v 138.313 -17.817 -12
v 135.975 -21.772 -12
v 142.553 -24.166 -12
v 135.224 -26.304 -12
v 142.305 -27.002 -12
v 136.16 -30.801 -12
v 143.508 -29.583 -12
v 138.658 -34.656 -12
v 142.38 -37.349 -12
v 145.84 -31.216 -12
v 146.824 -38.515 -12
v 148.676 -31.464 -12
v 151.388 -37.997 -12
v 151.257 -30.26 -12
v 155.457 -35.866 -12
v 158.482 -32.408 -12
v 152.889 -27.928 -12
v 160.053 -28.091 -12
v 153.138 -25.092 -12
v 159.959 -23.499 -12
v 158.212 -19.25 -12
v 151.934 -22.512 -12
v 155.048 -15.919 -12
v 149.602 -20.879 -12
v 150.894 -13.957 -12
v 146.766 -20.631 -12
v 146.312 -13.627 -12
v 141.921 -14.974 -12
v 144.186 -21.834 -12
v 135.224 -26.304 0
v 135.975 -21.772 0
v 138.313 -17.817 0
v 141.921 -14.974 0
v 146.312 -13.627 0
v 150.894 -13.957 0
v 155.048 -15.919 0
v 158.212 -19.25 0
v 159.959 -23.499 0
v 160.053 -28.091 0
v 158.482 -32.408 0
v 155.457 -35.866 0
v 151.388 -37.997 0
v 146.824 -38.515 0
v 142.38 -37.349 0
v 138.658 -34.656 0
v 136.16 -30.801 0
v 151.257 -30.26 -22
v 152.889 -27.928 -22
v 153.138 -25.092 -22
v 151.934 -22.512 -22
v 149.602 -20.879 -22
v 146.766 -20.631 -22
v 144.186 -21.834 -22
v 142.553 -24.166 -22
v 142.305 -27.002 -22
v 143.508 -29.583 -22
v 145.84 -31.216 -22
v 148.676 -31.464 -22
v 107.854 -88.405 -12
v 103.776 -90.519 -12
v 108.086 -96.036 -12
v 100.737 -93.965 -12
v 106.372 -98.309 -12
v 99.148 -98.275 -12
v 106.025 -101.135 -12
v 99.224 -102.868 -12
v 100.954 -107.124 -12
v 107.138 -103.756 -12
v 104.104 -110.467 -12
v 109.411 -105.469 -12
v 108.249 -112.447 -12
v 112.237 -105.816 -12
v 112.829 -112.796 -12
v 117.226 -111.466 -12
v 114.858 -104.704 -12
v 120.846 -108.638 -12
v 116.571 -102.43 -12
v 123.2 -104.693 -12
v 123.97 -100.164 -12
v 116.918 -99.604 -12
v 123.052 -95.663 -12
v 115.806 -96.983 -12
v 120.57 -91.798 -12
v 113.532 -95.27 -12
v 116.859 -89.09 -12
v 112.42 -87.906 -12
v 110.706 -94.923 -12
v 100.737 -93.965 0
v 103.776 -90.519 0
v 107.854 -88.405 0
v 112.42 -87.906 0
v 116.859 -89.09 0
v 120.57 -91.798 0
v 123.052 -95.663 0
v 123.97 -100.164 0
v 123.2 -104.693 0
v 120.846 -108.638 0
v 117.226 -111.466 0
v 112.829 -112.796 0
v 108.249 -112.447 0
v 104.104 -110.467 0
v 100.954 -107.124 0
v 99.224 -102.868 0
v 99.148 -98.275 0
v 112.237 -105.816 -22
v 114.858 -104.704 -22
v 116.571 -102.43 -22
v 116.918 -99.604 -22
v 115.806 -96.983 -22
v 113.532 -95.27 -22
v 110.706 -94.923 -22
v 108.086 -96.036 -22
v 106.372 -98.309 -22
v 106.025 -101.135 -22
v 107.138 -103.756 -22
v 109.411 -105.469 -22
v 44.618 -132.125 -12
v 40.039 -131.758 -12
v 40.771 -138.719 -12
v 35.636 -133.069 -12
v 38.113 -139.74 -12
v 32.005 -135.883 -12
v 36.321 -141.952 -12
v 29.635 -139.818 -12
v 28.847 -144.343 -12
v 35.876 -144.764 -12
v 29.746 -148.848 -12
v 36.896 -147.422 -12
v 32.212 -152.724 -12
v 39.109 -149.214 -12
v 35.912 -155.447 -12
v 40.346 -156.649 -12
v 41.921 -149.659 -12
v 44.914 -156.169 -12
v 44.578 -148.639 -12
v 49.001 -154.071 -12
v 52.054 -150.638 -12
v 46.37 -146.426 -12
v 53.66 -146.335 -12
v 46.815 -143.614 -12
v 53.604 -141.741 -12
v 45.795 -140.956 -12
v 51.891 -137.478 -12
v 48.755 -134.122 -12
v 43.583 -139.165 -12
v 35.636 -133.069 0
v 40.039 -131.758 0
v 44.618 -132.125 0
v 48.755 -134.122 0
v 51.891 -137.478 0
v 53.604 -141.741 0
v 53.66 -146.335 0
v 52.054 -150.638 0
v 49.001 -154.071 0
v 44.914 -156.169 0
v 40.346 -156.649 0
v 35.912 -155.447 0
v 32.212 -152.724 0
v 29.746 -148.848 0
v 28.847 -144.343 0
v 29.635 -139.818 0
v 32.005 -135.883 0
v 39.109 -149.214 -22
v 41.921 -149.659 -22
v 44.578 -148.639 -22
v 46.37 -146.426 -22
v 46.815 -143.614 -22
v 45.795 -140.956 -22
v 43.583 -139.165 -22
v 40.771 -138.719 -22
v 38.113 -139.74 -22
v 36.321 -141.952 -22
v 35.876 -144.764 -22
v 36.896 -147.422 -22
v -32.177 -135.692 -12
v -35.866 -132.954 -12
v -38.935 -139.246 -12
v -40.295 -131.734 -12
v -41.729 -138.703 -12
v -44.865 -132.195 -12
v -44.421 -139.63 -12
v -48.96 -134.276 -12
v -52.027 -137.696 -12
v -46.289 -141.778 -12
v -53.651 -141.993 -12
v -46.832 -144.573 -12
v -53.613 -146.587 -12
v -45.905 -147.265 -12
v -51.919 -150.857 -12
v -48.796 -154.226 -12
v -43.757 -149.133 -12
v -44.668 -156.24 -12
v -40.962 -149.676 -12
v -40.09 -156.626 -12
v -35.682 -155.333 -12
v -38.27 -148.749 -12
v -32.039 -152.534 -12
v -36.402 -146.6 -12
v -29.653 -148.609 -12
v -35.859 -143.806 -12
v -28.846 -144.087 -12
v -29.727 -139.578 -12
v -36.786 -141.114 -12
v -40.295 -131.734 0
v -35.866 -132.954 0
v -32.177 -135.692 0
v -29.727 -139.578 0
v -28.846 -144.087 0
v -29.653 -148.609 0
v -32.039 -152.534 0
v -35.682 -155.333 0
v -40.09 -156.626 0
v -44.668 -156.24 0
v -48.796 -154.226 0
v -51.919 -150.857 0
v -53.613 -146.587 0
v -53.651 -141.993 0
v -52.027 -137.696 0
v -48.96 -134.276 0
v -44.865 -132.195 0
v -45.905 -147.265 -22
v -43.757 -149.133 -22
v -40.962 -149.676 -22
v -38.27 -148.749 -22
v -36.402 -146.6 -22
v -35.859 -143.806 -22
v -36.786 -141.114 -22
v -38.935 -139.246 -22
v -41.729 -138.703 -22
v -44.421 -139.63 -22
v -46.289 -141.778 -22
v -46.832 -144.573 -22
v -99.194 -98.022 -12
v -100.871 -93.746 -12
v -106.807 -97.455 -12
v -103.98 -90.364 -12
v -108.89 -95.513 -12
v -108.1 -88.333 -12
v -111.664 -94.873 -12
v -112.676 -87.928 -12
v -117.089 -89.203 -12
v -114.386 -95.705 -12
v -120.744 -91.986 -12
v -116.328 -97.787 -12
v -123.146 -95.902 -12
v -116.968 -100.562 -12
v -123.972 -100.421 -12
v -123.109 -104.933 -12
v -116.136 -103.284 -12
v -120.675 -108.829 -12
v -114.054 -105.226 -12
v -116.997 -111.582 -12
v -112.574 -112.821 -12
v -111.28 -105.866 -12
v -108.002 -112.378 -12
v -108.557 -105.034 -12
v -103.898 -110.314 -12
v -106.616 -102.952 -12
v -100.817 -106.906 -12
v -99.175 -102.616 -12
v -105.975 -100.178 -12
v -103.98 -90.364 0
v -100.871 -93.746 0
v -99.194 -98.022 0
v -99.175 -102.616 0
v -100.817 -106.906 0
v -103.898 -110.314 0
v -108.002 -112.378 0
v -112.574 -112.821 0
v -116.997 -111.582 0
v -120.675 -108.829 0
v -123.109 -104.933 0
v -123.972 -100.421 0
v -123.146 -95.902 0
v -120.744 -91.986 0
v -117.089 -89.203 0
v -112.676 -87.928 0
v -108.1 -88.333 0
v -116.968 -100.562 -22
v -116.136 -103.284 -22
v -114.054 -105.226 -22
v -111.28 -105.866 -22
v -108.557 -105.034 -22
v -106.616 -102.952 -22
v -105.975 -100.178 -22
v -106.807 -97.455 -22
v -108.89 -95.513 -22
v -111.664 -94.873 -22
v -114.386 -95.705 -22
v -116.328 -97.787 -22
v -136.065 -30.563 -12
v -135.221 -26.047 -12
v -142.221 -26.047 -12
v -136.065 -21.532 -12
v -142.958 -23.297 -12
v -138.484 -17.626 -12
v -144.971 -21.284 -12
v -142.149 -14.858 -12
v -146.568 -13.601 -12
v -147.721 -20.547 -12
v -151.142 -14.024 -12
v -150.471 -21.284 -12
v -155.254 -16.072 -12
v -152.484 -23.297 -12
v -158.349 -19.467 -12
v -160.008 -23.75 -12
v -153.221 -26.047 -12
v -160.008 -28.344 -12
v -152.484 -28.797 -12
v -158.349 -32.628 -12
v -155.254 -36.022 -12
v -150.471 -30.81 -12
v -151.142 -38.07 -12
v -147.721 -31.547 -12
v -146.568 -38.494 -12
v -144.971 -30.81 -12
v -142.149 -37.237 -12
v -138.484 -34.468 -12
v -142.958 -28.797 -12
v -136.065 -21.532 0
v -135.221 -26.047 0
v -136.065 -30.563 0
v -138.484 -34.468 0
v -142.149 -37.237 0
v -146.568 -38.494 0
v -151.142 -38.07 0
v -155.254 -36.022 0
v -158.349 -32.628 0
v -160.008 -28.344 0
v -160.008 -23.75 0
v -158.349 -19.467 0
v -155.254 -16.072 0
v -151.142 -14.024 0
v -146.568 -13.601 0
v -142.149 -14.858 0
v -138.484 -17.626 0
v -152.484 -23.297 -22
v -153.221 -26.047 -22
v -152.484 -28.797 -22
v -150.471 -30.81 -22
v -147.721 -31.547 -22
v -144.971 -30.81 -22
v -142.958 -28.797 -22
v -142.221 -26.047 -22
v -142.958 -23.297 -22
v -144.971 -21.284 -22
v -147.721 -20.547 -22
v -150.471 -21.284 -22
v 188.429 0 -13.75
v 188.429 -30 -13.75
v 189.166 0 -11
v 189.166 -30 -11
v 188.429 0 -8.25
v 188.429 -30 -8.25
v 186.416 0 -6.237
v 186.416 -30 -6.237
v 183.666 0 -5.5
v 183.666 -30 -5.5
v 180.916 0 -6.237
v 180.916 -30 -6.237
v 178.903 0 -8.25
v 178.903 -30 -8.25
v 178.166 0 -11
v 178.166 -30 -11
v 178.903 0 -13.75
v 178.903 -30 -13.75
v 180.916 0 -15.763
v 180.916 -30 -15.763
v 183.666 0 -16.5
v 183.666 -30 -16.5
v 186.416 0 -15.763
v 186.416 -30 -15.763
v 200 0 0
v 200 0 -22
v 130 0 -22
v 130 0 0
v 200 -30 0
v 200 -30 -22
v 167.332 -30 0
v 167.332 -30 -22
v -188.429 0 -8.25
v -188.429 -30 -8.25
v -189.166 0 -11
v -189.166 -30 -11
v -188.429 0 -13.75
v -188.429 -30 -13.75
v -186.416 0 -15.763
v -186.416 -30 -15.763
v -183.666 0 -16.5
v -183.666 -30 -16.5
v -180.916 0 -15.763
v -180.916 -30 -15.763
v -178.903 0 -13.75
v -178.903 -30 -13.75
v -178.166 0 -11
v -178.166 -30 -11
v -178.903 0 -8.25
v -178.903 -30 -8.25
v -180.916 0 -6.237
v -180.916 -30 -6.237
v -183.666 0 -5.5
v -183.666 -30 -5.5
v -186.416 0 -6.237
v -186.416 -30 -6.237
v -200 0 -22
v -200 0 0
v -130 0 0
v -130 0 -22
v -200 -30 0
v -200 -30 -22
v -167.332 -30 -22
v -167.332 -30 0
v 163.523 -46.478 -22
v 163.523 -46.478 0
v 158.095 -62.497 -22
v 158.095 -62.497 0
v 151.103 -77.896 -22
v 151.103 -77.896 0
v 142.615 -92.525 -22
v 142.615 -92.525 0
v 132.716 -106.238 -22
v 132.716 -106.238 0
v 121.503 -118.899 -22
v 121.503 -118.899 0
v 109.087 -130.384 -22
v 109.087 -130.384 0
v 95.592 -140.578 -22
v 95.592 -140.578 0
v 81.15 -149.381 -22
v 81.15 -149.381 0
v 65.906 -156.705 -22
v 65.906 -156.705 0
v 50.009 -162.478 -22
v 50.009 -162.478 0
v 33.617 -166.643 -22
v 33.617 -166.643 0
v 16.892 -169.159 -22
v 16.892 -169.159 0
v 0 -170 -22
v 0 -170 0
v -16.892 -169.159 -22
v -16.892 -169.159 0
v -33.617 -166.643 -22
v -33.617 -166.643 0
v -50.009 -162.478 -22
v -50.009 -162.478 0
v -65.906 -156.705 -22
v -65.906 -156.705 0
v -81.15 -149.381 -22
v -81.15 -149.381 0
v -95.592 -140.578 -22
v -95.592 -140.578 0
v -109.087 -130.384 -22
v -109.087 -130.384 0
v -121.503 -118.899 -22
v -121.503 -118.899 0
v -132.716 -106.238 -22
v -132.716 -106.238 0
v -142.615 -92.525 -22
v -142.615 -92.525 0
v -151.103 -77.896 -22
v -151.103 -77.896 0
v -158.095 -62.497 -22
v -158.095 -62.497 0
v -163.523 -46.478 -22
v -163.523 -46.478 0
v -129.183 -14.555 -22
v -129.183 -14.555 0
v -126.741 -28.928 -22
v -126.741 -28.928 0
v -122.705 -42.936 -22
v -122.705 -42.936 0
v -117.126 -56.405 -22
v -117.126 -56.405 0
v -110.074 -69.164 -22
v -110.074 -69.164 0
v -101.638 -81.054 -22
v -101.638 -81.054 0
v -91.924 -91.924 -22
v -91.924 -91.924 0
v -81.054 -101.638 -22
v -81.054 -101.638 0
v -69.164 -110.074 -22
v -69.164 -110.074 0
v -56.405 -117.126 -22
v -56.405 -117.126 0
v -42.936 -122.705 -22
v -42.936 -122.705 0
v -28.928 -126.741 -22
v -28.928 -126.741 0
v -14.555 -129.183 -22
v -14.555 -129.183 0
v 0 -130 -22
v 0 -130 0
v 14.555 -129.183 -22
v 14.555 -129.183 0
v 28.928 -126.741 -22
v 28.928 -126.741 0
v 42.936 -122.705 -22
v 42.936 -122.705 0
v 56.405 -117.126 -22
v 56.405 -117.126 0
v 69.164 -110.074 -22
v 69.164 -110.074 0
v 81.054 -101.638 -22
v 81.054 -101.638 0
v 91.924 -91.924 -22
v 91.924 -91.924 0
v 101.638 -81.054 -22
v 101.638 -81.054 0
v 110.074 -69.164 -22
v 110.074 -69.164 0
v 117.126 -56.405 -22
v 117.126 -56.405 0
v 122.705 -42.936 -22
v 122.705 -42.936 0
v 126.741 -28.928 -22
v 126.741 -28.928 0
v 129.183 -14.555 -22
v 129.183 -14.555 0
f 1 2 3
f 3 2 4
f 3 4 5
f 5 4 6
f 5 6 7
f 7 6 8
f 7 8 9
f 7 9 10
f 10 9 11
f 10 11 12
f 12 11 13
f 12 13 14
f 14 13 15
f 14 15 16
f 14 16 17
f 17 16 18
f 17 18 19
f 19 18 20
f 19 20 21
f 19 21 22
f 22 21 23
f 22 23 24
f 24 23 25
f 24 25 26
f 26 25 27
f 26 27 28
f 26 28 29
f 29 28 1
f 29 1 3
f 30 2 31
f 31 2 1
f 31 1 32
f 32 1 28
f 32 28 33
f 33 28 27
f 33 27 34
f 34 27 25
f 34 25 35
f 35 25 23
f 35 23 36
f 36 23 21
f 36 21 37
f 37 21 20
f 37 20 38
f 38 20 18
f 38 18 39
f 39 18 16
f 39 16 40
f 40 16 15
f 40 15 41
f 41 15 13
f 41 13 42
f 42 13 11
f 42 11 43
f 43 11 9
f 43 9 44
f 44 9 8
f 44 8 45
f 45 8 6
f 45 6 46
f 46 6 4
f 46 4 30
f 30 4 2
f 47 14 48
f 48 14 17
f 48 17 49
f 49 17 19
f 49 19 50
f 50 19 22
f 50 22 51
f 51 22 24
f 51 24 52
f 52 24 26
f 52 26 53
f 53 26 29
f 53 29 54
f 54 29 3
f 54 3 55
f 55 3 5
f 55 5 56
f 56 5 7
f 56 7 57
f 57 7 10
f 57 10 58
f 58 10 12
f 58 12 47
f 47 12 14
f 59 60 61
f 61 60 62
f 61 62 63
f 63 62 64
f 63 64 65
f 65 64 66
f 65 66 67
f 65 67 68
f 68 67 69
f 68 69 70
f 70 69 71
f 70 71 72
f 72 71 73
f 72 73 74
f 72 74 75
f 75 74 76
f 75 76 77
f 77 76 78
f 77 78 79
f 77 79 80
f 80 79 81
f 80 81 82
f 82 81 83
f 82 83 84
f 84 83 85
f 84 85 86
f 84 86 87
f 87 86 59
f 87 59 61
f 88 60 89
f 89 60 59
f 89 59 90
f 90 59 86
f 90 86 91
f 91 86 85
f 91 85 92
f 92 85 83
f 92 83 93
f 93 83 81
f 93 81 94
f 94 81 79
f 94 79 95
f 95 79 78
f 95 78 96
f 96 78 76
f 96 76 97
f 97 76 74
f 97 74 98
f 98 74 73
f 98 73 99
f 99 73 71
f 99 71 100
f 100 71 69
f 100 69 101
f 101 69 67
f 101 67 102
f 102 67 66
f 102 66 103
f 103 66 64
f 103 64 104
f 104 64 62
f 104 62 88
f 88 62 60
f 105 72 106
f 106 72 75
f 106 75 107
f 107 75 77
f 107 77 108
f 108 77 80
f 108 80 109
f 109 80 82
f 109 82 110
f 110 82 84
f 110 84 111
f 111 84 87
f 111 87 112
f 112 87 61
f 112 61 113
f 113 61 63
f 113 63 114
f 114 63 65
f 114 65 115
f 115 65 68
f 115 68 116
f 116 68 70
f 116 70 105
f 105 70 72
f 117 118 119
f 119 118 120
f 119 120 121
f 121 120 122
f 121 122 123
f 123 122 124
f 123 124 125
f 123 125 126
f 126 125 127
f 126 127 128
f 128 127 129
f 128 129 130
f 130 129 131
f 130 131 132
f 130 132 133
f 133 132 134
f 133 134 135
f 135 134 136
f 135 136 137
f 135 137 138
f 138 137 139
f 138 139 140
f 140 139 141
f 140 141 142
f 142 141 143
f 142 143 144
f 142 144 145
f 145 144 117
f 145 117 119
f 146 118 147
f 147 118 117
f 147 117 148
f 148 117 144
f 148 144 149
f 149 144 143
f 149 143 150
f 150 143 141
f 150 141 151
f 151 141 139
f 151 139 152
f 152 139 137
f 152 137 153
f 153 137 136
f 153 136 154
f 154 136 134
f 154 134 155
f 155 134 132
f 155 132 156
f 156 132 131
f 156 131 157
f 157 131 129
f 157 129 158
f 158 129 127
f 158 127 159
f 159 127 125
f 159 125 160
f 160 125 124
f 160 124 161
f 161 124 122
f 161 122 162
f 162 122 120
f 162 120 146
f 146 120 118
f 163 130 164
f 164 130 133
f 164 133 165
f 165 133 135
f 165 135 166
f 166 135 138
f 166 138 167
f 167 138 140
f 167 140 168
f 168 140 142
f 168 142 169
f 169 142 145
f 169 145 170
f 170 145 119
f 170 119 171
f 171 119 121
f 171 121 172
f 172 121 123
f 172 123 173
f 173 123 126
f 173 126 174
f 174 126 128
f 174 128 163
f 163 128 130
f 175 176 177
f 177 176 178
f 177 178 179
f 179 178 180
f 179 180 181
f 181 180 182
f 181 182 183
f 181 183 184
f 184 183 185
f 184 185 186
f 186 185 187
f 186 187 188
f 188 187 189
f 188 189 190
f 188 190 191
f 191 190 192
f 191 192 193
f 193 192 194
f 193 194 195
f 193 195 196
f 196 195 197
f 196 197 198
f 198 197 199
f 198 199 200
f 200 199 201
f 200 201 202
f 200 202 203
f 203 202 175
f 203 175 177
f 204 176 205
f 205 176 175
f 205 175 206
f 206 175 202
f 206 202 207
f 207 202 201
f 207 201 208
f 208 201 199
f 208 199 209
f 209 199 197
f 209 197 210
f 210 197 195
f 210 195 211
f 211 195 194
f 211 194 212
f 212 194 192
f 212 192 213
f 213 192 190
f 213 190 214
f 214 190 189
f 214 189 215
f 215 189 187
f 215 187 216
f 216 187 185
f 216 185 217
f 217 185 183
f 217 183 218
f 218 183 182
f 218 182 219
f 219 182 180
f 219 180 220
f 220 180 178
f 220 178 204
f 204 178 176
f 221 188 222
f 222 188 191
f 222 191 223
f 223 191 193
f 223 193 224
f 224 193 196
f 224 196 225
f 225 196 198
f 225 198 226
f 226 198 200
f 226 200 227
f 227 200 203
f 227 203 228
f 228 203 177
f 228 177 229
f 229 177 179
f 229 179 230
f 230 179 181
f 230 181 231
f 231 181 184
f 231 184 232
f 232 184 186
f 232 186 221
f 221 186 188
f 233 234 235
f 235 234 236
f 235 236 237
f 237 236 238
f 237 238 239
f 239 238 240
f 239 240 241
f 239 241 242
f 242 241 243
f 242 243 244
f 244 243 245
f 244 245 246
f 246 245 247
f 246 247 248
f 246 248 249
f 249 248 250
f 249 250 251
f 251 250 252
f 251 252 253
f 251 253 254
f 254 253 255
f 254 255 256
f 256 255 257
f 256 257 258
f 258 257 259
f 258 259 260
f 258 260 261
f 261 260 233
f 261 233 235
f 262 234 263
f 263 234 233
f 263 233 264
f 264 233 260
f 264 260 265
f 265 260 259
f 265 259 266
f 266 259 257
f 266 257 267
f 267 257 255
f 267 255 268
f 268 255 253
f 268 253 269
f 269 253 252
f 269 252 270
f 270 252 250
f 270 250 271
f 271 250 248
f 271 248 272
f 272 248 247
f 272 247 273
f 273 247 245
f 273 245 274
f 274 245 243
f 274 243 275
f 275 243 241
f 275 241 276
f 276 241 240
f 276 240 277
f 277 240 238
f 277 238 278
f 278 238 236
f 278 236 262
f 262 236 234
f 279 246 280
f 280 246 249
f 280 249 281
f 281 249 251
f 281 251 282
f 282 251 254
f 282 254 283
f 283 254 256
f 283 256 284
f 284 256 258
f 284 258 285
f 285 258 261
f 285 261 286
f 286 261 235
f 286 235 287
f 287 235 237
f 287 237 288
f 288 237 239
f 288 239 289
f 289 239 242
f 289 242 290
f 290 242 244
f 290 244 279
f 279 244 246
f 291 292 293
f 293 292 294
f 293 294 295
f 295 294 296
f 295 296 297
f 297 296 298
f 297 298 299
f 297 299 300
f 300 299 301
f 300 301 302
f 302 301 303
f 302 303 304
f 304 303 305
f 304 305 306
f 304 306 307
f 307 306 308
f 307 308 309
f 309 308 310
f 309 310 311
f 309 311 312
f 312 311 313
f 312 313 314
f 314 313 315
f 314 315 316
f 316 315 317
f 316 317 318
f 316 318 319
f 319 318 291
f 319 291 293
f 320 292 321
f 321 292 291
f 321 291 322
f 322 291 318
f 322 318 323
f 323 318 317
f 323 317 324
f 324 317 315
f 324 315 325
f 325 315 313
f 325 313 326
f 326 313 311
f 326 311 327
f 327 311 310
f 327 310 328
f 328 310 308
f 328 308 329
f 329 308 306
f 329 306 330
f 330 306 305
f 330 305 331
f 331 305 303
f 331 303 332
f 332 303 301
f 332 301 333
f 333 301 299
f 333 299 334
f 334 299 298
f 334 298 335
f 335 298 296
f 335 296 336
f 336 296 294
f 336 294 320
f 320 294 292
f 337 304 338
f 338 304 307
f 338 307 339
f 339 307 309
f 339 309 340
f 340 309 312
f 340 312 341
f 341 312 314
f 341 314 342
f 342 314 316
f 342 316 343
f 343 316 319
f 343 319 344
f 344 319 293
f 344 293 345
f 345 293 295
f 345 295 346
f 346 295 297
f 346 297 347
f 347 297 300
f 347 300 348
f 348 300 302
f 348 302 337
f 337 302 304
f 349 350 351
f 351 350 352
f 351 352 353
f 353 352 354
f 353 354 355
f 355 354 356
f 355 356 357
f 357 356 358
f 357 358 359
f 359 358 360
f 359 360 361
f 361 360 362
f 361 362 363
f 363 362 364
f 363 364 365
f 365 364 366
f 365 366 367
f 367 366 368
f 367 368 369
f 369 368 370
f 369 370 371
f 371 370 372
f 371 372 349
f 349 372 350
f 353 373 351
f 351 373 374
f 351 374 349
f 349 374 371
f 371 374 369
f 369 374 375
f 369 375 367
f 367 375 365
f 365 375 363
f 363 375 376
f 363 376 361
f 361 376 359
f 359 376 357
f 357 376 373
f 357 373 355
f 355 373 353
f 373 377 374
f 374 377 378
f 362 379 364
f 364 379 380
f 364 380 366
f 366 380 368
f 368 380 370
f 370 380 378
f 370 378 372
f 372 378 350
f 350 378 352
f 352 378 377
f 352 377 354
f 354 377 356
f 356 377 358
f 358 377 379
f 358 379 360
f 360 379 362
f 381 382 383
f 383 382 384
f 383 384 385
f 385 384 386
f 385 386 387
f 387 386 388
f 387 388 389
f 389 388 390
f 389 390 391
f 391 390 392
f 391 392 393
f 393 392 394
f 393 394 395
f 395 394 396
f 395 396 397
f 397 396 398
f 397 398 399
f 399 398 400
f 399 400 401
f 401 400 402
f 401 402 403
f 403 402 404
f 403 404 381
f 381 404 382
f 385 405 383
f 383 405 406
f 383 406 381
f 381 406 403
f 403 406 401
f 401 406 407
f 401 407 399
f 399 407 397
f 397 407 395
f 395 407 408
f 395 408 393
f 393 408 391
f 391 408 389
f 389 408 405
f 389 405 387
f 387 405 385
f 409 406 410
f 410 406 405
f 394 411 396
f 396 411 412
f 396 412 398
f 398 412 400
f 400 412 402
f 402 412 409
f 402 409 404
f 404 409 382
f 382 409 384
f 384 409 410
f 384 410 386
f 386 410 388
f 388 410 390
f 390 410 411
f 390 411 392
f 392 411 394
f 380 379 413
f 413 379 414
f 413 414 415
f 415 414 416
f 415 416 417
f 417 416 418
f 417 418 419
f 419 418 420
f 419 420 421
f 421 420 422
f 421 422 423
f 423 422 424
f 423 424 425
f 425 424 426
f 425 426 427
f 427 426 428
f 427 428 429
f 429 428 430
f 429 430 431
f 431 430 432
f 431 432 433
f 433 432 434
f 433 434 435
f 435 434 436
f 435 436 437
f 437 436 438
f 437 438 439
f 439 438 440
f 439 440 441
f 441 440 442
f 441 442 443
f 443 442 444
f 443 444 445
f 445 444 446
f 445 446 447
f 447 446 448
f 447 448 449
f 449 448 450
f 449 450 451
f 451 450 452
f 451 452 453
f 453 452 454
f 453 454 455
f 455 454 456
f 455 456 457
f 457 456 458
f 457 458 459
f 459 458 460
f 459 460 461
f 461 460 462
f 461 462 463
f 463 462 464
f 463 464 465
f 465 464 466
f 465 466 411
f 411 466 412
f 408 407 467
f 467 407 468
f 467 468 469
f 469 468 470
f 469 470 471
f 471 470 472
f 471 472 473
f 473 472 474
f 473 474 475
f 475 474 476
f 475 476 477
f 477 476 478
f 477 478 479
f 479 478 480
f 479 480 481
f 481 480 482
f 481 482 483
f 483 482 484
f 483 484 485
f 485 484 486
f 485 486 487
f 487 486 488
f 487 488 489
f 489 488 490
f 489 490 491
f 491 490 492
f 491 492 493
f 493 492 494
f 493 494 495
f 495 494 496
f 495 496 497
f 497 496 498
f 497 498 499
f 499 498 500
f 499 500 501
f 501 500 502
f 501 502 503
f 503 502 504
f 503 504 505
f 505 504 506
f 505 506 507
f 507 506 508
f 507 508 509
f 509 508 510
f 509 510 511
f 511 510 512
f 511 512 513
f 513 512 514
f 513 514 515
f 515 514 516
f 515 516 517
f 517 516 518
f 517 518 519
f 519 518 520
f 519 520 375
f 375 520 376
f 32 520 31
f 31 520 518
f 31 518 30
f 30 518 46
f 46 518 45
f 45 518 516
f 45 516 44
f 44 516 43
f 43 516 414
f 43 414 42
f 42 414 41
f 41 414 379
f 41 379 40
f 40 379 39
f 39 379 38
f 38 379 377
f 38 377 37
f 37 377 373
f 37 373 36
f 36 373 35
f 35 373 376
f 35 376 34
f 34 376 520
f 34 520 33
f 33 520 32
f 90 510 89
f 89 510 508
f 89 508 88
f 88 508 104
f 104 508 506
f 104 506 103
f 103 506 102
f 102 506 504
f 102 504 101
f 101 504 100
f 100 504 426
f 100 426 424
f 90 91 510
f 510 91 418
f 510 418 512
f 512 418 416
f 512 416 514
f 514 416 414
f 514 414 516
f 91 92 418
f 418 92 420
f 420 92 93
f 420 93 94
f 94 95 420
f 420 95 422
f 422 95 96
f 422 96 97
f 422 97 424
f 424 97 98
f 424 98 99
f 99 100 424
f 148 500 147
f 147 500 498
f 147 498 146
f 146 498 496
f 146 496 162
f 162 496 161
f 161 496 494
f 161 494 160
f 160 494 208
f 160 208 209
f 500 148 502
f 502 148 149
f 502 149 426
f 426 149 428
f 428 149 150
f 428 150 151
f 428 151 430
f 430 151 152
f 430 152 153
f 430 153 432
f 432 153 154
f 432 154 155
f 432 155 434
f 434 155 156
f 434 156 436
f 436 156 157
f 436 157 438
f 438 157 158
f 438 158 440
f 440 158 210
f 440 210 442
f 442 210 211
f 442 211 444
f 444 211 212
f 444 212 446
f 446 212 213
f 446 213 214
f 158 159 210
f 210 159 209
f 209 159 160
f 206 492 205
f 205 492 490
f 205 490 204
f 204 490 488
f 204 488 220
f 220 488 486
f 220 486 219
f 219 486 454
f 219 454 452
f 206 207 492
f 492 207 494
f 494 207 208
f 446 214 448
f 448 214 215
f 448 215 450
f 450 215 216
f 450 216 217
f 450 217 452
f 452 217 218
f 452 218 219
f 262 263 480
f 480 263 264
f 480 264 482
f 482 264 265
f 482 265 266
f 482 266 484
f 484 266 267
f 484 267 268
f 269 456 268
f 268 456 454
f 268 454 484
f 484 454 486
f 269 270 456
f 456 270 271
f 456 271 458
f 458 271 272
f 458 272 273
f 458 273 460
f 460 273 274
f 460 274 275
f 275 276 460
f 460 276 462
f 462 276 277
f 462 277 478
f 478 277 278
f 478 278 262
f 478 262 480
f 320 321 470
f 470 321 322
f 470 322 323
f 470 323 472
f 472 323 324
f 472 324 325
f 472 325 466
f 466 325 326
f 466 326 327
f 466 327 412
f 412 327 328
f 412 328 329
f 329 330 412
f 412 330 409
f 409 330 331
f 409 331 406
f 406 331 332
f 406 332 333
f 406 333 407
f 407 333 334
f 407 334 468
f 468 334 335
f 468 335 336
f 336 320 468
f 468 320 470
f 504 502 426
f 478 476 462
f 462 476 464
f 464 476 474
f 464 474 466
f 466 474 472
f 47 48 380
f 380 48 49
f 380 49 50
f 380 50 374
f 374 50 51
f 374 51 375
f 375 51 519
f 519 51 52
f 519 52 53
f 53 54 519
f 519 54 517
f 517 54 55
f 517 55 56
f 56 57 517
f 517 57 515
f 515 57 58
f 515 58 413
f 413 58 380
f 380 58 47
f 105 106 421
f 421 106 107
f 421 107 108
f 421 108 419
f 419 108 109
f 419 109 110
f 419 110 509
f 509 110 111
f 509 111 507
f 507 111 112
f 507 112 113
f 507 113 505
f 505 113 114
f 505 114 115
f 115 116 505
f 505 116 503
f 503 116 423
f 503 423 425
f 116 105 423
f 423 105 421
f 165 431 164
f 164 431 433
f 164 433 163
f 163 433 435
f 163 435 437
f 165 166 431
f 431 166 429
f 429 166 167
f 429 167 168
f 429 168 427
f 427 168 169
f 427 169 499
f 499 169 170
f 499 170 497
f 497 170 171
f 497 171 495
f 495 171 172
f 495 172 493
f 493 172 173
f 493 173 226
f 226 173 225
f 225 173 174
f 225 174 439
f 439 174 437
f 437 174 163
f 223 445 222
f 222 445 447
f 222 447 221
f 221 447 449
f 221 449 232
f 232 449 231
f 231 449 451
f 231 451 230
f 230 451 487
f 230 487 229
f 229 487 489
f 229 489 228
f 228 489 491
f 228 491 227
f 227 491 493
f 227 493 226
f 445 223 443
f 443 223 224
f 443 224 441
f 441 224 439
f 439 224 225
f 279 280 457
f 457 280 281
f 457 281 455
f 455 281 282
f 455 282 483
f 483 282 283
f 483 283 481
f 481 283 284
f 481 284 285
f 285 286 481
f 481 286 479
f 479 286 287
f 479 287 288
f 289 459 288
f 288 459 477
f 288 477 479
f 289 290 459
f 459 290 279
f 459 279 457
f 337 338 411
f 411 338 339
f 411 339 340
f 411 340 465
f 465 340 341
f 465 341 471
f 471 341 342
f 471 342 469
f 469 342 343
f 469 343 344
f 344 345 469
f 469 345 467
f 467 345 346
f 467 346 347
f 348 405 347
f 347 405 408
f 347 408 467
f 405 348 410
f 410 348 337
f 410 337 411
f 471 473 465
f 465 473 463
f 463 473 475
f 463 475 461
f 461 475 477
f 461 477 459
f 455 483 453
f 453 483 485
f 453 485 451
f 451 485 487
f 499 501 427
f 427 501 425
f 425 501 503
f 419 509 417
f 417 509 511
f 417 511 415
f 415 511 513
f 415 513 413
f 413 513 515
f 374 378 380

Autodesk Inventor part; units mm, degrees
ref_plane "YZ Plane" through (0, 0, 0) normal (1, 0, 0) x (0, 1, 0)
ref_plane "XZ Plane" through (0, 0, 0) normal (0, 1, 0) x (-1, 0, 0)
ref_plane "XY Plane" through (0, 0, 0) normal (0, 0, 1) x (1, 0, 0)
sketch "Sketch1" plane through (0, 0, 0) normal (0, 0, 1) x (1, 0, 0)
  circle A0 centre (0, 0) radius 150 construction
  line L0 (0, 150) -> (0, 170) construction
  line L1 (0, 150) -> (0, 130) construction
  circle A1 centre (0, 0) radius 130
  circle A2 centre (0, 0) radius 170
  line L2 (-130, 0) -> (-130, 80) construction
  line L3 (-130, 80) -> (-170, 80) construction
  line L4 (-170, 80) -> (-170, 0) construction
  line L5 (-130, 0) -> (-170, 0)
  line L6 (-170, 0) -> (-200, 0)
  line L7 (-200, 0) -> (-200, -30)
  line L8 (-200, -30) -> (-167.332, -30)
  line L9 (-1.5, -168) -> (1.5, -168)
  line L10 (1.5, -168) -> (1.5, -210)
  line L11 (1.5, -210) -> (-1.5, -210)
  line L12 (-1.5, -210) -> (-1.5, -168)
  line L13 (0, -168) -> (0, -130)
  line L14 (-1.5, -210) -> (-30, -210)
  line L15 (-30, -210) -> (-30, -167.332)
  line L16 (0, -168) -> (0, -170)
  point P0 (170, 0)
  point P1 (0, -210)
  point P2 (-1.5, -169.9934)
  point P3 (1.5, -169.9934)
  dimension "d26" = 80
  dimension "d36" = 40
  dimension "d40" = 30
  dimension "d41" = 30
  dimension "d74" = 260
  dimension "d75" = 3
  dimension "d76" = 42
  dimension "d77" = 30
  dimension "d78" = 2
extrude "Extrusion1" add sketch "Sketch1" against normal blind 22 contours A1 L13 L9 L12 A2 L5 | A2 L8 L7 L6 | L16 A2 L12 L9
sketch "Sketch10" plane through (-200, -30, 0) normal (0, -1, 0) x (1, 0, 0)
  line L0 (0, 0) -> (32.668, 0) projected
  line L1 (0, 0) -> (0, -22) projected
  line L2 (32.668, -22) -> (0, -22) projected
  line L3 (32.668, 0) -> (32.668, -22) projected
  circle A0 centre (16.334, -11) radius 5.5
  line L4 (0, 0) -> (0, -22) projected
  line L5 (0, 0) -> (32.668, 0) projected
  point P0 (200, 0)
  point P1 (0, -11)
  point P2 (16.334, 0)
  dimension "d79" = 11
extrude "Extrusion9" cut sketch "Sketch10" against normal through all contours A0
mirror "Mirror3" about plane through (0, 0, 0) normal (1, 0, 0) of "Extrusion1", "Extrusion9"
sketch "Sketch12" plane through (0, 0, 0) normal (0, 0, 1) x (1, 0, 0)
  line L0 (0, 0) -> (-150, 0) construction
  line L1 (0, 0) -> (-147.7212, -26.0472) construction
  circle A0 centre (0, 0) radius 150 construction
  dimension "d86" = 10
  dimension "d87" = 300
hole "Hole4" at (-147.7212, -26.0472, 0) direction (0, 0, -1) diameter 11 end through all counterbore diameter 25 counterbore depth 12
pattern_circular "Circular Pattern5" count 6 over 160 about axis through (0, 0, -10) along (0, 0, 1) of "Hole4"
equation "\"d41\" = d40"
equation "\"d77\" = d41"
equation "\"d93\" = Thickness"
equation "\"BendReliefDepth\" = 0.5 * Thickness"
equation "\"Thickness\" = 30"
properties part number "ДМФ 093 Постель КОРМА v2.0" material "Nylon 6"
